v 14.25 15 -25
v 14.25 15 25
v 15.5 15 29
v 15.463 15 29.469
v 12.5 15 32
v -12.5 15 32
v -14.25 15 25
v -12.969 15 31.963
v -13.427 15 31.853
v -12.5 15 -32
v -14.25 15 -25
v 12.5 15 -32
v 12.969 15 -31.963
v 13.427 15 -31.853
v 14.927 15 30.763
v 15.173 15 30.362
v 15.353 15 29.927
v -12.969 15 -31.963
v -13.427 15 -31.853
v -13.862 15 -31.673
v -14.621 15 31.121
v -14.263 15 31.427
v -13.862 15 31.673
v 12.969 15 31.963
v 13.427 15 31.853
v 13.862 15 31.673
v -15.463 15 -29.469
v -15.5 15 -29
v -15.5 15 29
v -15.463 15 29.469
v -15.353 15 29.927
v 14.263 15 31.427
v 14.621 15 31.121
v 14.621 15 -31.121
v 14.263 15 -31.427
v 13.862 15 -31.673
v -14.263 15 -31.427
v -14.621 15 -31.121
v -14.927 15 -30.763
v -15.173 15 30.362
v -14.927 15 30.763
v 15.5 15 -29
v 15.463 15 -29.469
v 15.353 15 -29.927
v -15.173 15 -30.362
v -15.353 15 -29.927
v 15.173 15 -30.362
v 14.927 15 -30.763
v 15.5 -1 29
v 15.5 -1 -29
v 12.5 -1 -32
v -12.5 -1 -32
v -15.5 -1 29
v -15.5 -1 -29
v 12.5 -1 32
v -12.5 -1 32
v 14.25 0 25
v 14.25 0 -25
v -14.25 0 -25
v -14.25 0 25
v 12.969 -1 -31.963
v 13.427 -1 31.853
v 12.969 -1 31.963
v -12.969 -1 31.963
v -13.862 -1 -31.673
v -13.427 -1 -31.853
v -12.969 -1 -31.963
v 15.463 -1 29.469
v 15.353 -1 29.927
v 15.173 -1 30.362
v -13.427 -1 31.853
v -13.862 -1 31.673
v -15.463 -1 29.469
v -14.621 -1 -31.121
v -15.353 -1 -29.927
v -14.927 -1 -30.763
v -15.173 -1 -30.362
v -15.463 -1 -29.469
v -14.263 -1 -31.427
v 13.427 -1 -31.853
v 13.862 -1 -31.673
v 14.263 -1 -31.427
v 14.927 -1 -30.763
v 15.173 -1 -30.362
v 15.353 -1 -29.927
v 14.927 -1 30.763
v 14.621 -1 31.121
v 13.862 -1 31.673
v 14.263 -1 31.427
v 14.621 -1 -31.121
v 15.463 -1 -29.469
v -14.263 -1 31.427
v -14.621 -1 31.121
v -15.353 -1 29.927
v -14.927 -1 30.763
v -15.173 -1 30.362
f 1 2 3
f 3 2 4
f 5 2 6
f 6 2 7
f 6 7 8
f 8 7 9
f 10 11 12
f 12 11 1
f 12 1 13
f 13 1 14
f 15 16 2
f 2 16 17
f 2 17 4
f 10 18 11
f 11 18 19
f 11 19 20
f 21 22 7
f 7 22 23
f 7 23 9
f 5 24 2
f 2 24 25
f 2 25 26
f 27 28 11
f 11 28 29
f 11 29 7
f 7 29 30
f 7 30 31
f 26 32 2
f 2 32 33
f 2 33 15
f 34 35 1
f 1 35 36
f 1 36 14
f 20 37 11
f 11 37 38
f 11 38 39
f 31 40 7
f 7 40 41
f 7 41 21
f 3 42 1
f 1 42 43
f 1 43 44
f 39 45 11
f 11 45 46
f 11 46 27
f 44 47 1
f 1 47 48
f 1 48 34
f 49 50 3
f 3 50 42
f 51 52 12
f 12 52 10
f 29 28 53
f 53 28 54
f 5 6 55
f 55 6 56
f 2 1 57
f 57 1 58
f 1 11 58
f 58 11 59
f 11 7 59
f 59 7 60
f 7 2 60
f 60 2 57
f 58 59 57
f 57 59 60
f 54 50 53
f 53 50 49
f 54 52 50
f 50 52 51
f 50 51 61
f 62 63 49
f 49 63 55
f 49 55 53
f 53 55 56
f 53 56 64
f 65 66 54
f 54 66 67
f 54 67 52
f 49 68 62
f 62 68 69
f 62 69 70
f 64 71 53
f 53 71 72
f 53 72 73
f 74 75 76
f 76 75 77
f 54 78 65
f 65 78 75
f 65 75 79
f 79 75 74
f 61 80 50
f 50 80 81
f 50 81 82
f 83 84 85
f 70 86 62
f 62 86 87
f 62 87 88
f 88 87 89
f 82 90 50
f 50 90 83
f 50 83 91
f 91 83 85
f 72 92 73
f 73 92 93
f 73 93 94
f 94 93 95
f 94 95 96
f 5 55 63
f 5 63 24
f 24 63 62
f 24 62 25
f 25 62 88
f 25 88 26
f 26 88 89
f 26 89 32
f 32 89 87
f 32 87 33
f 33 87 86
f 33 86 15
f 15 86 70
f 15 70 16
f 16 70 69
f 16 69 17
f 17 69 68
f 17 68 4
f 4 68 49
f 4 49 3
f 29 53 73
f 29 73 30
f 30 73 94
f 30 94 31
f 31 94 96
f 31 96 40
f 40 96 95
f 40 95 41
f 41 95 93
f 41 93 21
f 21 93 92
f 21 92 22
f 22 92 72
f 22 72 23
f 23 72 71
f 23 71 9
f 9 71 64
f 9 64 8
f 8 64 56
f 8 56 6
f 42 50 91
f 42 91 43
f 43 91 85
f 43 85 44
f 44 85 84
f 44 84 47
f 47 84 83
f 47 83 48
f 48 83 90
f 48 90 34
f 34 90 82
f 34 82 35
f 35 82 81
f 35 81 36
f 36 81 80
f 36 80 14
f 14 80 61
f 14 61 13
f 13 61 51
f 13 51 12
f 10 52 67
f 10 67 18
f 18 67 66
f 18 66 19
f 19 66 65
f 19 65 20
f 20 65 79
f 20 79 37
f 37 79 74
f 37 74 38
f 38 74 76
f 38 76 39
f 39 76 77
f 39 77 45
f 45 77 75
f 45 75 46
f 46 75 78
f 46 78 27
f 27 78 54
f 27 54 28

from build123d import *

# Parameters (mm, degrees)
SKETCH_1_W      = 31
SKETCH_1_H      = 64
SKETCH_1_W_2    = 28.5
SKETCH_1_H_2    = 50
EXTRUDE_1_DEPTH = 15
SKETCH_2_W      = 31
SKETCH_2_H      = 64
EXTRUDE_2_DEPTH = 1
FILLET_1_R      = 3


with BuildPart() as part:
    # 草图1 → 凸台-拉伸1 (new body)
    with BuildSketch(Plane(origin=(0, 0, 0), x_dir=(1, 0, 0), z_dir=(0, 1, 0))):
        Rectangle(SKETCH_1_W, SKETCH_1_H)
        Rectangle(SKETCH_1_W_2, SKETCH_1_H_2, mode=Mode.SUBTRACT)
    extrude(amount=EXTRUDE_1_DEPTH)

    # 草图2 → 凸台-拉伸2 (add)
    with BuildSketch(Plane(origin=(0, 0, 0), x_dir=(1, 0, 0), z_dir=(0, 1, 0))):
        Rectangle(SKETCH_2_W, SKETCH_2_H)
    extrude(amount=-EXTRUDE_2_DEPTH)

    # 圆角1
    fillet_1_edges = [part.edges().sort_by_distance(p)[0] for p in [
        (15.5, 7, 32),
        (-15.5, 7, 32),
        (-15.5, 7, -32),
        (15.5, 7, -32),
    ]]
    fillet(fillet_1_edges, radius=FILLET_1_R)


solid = part.part
